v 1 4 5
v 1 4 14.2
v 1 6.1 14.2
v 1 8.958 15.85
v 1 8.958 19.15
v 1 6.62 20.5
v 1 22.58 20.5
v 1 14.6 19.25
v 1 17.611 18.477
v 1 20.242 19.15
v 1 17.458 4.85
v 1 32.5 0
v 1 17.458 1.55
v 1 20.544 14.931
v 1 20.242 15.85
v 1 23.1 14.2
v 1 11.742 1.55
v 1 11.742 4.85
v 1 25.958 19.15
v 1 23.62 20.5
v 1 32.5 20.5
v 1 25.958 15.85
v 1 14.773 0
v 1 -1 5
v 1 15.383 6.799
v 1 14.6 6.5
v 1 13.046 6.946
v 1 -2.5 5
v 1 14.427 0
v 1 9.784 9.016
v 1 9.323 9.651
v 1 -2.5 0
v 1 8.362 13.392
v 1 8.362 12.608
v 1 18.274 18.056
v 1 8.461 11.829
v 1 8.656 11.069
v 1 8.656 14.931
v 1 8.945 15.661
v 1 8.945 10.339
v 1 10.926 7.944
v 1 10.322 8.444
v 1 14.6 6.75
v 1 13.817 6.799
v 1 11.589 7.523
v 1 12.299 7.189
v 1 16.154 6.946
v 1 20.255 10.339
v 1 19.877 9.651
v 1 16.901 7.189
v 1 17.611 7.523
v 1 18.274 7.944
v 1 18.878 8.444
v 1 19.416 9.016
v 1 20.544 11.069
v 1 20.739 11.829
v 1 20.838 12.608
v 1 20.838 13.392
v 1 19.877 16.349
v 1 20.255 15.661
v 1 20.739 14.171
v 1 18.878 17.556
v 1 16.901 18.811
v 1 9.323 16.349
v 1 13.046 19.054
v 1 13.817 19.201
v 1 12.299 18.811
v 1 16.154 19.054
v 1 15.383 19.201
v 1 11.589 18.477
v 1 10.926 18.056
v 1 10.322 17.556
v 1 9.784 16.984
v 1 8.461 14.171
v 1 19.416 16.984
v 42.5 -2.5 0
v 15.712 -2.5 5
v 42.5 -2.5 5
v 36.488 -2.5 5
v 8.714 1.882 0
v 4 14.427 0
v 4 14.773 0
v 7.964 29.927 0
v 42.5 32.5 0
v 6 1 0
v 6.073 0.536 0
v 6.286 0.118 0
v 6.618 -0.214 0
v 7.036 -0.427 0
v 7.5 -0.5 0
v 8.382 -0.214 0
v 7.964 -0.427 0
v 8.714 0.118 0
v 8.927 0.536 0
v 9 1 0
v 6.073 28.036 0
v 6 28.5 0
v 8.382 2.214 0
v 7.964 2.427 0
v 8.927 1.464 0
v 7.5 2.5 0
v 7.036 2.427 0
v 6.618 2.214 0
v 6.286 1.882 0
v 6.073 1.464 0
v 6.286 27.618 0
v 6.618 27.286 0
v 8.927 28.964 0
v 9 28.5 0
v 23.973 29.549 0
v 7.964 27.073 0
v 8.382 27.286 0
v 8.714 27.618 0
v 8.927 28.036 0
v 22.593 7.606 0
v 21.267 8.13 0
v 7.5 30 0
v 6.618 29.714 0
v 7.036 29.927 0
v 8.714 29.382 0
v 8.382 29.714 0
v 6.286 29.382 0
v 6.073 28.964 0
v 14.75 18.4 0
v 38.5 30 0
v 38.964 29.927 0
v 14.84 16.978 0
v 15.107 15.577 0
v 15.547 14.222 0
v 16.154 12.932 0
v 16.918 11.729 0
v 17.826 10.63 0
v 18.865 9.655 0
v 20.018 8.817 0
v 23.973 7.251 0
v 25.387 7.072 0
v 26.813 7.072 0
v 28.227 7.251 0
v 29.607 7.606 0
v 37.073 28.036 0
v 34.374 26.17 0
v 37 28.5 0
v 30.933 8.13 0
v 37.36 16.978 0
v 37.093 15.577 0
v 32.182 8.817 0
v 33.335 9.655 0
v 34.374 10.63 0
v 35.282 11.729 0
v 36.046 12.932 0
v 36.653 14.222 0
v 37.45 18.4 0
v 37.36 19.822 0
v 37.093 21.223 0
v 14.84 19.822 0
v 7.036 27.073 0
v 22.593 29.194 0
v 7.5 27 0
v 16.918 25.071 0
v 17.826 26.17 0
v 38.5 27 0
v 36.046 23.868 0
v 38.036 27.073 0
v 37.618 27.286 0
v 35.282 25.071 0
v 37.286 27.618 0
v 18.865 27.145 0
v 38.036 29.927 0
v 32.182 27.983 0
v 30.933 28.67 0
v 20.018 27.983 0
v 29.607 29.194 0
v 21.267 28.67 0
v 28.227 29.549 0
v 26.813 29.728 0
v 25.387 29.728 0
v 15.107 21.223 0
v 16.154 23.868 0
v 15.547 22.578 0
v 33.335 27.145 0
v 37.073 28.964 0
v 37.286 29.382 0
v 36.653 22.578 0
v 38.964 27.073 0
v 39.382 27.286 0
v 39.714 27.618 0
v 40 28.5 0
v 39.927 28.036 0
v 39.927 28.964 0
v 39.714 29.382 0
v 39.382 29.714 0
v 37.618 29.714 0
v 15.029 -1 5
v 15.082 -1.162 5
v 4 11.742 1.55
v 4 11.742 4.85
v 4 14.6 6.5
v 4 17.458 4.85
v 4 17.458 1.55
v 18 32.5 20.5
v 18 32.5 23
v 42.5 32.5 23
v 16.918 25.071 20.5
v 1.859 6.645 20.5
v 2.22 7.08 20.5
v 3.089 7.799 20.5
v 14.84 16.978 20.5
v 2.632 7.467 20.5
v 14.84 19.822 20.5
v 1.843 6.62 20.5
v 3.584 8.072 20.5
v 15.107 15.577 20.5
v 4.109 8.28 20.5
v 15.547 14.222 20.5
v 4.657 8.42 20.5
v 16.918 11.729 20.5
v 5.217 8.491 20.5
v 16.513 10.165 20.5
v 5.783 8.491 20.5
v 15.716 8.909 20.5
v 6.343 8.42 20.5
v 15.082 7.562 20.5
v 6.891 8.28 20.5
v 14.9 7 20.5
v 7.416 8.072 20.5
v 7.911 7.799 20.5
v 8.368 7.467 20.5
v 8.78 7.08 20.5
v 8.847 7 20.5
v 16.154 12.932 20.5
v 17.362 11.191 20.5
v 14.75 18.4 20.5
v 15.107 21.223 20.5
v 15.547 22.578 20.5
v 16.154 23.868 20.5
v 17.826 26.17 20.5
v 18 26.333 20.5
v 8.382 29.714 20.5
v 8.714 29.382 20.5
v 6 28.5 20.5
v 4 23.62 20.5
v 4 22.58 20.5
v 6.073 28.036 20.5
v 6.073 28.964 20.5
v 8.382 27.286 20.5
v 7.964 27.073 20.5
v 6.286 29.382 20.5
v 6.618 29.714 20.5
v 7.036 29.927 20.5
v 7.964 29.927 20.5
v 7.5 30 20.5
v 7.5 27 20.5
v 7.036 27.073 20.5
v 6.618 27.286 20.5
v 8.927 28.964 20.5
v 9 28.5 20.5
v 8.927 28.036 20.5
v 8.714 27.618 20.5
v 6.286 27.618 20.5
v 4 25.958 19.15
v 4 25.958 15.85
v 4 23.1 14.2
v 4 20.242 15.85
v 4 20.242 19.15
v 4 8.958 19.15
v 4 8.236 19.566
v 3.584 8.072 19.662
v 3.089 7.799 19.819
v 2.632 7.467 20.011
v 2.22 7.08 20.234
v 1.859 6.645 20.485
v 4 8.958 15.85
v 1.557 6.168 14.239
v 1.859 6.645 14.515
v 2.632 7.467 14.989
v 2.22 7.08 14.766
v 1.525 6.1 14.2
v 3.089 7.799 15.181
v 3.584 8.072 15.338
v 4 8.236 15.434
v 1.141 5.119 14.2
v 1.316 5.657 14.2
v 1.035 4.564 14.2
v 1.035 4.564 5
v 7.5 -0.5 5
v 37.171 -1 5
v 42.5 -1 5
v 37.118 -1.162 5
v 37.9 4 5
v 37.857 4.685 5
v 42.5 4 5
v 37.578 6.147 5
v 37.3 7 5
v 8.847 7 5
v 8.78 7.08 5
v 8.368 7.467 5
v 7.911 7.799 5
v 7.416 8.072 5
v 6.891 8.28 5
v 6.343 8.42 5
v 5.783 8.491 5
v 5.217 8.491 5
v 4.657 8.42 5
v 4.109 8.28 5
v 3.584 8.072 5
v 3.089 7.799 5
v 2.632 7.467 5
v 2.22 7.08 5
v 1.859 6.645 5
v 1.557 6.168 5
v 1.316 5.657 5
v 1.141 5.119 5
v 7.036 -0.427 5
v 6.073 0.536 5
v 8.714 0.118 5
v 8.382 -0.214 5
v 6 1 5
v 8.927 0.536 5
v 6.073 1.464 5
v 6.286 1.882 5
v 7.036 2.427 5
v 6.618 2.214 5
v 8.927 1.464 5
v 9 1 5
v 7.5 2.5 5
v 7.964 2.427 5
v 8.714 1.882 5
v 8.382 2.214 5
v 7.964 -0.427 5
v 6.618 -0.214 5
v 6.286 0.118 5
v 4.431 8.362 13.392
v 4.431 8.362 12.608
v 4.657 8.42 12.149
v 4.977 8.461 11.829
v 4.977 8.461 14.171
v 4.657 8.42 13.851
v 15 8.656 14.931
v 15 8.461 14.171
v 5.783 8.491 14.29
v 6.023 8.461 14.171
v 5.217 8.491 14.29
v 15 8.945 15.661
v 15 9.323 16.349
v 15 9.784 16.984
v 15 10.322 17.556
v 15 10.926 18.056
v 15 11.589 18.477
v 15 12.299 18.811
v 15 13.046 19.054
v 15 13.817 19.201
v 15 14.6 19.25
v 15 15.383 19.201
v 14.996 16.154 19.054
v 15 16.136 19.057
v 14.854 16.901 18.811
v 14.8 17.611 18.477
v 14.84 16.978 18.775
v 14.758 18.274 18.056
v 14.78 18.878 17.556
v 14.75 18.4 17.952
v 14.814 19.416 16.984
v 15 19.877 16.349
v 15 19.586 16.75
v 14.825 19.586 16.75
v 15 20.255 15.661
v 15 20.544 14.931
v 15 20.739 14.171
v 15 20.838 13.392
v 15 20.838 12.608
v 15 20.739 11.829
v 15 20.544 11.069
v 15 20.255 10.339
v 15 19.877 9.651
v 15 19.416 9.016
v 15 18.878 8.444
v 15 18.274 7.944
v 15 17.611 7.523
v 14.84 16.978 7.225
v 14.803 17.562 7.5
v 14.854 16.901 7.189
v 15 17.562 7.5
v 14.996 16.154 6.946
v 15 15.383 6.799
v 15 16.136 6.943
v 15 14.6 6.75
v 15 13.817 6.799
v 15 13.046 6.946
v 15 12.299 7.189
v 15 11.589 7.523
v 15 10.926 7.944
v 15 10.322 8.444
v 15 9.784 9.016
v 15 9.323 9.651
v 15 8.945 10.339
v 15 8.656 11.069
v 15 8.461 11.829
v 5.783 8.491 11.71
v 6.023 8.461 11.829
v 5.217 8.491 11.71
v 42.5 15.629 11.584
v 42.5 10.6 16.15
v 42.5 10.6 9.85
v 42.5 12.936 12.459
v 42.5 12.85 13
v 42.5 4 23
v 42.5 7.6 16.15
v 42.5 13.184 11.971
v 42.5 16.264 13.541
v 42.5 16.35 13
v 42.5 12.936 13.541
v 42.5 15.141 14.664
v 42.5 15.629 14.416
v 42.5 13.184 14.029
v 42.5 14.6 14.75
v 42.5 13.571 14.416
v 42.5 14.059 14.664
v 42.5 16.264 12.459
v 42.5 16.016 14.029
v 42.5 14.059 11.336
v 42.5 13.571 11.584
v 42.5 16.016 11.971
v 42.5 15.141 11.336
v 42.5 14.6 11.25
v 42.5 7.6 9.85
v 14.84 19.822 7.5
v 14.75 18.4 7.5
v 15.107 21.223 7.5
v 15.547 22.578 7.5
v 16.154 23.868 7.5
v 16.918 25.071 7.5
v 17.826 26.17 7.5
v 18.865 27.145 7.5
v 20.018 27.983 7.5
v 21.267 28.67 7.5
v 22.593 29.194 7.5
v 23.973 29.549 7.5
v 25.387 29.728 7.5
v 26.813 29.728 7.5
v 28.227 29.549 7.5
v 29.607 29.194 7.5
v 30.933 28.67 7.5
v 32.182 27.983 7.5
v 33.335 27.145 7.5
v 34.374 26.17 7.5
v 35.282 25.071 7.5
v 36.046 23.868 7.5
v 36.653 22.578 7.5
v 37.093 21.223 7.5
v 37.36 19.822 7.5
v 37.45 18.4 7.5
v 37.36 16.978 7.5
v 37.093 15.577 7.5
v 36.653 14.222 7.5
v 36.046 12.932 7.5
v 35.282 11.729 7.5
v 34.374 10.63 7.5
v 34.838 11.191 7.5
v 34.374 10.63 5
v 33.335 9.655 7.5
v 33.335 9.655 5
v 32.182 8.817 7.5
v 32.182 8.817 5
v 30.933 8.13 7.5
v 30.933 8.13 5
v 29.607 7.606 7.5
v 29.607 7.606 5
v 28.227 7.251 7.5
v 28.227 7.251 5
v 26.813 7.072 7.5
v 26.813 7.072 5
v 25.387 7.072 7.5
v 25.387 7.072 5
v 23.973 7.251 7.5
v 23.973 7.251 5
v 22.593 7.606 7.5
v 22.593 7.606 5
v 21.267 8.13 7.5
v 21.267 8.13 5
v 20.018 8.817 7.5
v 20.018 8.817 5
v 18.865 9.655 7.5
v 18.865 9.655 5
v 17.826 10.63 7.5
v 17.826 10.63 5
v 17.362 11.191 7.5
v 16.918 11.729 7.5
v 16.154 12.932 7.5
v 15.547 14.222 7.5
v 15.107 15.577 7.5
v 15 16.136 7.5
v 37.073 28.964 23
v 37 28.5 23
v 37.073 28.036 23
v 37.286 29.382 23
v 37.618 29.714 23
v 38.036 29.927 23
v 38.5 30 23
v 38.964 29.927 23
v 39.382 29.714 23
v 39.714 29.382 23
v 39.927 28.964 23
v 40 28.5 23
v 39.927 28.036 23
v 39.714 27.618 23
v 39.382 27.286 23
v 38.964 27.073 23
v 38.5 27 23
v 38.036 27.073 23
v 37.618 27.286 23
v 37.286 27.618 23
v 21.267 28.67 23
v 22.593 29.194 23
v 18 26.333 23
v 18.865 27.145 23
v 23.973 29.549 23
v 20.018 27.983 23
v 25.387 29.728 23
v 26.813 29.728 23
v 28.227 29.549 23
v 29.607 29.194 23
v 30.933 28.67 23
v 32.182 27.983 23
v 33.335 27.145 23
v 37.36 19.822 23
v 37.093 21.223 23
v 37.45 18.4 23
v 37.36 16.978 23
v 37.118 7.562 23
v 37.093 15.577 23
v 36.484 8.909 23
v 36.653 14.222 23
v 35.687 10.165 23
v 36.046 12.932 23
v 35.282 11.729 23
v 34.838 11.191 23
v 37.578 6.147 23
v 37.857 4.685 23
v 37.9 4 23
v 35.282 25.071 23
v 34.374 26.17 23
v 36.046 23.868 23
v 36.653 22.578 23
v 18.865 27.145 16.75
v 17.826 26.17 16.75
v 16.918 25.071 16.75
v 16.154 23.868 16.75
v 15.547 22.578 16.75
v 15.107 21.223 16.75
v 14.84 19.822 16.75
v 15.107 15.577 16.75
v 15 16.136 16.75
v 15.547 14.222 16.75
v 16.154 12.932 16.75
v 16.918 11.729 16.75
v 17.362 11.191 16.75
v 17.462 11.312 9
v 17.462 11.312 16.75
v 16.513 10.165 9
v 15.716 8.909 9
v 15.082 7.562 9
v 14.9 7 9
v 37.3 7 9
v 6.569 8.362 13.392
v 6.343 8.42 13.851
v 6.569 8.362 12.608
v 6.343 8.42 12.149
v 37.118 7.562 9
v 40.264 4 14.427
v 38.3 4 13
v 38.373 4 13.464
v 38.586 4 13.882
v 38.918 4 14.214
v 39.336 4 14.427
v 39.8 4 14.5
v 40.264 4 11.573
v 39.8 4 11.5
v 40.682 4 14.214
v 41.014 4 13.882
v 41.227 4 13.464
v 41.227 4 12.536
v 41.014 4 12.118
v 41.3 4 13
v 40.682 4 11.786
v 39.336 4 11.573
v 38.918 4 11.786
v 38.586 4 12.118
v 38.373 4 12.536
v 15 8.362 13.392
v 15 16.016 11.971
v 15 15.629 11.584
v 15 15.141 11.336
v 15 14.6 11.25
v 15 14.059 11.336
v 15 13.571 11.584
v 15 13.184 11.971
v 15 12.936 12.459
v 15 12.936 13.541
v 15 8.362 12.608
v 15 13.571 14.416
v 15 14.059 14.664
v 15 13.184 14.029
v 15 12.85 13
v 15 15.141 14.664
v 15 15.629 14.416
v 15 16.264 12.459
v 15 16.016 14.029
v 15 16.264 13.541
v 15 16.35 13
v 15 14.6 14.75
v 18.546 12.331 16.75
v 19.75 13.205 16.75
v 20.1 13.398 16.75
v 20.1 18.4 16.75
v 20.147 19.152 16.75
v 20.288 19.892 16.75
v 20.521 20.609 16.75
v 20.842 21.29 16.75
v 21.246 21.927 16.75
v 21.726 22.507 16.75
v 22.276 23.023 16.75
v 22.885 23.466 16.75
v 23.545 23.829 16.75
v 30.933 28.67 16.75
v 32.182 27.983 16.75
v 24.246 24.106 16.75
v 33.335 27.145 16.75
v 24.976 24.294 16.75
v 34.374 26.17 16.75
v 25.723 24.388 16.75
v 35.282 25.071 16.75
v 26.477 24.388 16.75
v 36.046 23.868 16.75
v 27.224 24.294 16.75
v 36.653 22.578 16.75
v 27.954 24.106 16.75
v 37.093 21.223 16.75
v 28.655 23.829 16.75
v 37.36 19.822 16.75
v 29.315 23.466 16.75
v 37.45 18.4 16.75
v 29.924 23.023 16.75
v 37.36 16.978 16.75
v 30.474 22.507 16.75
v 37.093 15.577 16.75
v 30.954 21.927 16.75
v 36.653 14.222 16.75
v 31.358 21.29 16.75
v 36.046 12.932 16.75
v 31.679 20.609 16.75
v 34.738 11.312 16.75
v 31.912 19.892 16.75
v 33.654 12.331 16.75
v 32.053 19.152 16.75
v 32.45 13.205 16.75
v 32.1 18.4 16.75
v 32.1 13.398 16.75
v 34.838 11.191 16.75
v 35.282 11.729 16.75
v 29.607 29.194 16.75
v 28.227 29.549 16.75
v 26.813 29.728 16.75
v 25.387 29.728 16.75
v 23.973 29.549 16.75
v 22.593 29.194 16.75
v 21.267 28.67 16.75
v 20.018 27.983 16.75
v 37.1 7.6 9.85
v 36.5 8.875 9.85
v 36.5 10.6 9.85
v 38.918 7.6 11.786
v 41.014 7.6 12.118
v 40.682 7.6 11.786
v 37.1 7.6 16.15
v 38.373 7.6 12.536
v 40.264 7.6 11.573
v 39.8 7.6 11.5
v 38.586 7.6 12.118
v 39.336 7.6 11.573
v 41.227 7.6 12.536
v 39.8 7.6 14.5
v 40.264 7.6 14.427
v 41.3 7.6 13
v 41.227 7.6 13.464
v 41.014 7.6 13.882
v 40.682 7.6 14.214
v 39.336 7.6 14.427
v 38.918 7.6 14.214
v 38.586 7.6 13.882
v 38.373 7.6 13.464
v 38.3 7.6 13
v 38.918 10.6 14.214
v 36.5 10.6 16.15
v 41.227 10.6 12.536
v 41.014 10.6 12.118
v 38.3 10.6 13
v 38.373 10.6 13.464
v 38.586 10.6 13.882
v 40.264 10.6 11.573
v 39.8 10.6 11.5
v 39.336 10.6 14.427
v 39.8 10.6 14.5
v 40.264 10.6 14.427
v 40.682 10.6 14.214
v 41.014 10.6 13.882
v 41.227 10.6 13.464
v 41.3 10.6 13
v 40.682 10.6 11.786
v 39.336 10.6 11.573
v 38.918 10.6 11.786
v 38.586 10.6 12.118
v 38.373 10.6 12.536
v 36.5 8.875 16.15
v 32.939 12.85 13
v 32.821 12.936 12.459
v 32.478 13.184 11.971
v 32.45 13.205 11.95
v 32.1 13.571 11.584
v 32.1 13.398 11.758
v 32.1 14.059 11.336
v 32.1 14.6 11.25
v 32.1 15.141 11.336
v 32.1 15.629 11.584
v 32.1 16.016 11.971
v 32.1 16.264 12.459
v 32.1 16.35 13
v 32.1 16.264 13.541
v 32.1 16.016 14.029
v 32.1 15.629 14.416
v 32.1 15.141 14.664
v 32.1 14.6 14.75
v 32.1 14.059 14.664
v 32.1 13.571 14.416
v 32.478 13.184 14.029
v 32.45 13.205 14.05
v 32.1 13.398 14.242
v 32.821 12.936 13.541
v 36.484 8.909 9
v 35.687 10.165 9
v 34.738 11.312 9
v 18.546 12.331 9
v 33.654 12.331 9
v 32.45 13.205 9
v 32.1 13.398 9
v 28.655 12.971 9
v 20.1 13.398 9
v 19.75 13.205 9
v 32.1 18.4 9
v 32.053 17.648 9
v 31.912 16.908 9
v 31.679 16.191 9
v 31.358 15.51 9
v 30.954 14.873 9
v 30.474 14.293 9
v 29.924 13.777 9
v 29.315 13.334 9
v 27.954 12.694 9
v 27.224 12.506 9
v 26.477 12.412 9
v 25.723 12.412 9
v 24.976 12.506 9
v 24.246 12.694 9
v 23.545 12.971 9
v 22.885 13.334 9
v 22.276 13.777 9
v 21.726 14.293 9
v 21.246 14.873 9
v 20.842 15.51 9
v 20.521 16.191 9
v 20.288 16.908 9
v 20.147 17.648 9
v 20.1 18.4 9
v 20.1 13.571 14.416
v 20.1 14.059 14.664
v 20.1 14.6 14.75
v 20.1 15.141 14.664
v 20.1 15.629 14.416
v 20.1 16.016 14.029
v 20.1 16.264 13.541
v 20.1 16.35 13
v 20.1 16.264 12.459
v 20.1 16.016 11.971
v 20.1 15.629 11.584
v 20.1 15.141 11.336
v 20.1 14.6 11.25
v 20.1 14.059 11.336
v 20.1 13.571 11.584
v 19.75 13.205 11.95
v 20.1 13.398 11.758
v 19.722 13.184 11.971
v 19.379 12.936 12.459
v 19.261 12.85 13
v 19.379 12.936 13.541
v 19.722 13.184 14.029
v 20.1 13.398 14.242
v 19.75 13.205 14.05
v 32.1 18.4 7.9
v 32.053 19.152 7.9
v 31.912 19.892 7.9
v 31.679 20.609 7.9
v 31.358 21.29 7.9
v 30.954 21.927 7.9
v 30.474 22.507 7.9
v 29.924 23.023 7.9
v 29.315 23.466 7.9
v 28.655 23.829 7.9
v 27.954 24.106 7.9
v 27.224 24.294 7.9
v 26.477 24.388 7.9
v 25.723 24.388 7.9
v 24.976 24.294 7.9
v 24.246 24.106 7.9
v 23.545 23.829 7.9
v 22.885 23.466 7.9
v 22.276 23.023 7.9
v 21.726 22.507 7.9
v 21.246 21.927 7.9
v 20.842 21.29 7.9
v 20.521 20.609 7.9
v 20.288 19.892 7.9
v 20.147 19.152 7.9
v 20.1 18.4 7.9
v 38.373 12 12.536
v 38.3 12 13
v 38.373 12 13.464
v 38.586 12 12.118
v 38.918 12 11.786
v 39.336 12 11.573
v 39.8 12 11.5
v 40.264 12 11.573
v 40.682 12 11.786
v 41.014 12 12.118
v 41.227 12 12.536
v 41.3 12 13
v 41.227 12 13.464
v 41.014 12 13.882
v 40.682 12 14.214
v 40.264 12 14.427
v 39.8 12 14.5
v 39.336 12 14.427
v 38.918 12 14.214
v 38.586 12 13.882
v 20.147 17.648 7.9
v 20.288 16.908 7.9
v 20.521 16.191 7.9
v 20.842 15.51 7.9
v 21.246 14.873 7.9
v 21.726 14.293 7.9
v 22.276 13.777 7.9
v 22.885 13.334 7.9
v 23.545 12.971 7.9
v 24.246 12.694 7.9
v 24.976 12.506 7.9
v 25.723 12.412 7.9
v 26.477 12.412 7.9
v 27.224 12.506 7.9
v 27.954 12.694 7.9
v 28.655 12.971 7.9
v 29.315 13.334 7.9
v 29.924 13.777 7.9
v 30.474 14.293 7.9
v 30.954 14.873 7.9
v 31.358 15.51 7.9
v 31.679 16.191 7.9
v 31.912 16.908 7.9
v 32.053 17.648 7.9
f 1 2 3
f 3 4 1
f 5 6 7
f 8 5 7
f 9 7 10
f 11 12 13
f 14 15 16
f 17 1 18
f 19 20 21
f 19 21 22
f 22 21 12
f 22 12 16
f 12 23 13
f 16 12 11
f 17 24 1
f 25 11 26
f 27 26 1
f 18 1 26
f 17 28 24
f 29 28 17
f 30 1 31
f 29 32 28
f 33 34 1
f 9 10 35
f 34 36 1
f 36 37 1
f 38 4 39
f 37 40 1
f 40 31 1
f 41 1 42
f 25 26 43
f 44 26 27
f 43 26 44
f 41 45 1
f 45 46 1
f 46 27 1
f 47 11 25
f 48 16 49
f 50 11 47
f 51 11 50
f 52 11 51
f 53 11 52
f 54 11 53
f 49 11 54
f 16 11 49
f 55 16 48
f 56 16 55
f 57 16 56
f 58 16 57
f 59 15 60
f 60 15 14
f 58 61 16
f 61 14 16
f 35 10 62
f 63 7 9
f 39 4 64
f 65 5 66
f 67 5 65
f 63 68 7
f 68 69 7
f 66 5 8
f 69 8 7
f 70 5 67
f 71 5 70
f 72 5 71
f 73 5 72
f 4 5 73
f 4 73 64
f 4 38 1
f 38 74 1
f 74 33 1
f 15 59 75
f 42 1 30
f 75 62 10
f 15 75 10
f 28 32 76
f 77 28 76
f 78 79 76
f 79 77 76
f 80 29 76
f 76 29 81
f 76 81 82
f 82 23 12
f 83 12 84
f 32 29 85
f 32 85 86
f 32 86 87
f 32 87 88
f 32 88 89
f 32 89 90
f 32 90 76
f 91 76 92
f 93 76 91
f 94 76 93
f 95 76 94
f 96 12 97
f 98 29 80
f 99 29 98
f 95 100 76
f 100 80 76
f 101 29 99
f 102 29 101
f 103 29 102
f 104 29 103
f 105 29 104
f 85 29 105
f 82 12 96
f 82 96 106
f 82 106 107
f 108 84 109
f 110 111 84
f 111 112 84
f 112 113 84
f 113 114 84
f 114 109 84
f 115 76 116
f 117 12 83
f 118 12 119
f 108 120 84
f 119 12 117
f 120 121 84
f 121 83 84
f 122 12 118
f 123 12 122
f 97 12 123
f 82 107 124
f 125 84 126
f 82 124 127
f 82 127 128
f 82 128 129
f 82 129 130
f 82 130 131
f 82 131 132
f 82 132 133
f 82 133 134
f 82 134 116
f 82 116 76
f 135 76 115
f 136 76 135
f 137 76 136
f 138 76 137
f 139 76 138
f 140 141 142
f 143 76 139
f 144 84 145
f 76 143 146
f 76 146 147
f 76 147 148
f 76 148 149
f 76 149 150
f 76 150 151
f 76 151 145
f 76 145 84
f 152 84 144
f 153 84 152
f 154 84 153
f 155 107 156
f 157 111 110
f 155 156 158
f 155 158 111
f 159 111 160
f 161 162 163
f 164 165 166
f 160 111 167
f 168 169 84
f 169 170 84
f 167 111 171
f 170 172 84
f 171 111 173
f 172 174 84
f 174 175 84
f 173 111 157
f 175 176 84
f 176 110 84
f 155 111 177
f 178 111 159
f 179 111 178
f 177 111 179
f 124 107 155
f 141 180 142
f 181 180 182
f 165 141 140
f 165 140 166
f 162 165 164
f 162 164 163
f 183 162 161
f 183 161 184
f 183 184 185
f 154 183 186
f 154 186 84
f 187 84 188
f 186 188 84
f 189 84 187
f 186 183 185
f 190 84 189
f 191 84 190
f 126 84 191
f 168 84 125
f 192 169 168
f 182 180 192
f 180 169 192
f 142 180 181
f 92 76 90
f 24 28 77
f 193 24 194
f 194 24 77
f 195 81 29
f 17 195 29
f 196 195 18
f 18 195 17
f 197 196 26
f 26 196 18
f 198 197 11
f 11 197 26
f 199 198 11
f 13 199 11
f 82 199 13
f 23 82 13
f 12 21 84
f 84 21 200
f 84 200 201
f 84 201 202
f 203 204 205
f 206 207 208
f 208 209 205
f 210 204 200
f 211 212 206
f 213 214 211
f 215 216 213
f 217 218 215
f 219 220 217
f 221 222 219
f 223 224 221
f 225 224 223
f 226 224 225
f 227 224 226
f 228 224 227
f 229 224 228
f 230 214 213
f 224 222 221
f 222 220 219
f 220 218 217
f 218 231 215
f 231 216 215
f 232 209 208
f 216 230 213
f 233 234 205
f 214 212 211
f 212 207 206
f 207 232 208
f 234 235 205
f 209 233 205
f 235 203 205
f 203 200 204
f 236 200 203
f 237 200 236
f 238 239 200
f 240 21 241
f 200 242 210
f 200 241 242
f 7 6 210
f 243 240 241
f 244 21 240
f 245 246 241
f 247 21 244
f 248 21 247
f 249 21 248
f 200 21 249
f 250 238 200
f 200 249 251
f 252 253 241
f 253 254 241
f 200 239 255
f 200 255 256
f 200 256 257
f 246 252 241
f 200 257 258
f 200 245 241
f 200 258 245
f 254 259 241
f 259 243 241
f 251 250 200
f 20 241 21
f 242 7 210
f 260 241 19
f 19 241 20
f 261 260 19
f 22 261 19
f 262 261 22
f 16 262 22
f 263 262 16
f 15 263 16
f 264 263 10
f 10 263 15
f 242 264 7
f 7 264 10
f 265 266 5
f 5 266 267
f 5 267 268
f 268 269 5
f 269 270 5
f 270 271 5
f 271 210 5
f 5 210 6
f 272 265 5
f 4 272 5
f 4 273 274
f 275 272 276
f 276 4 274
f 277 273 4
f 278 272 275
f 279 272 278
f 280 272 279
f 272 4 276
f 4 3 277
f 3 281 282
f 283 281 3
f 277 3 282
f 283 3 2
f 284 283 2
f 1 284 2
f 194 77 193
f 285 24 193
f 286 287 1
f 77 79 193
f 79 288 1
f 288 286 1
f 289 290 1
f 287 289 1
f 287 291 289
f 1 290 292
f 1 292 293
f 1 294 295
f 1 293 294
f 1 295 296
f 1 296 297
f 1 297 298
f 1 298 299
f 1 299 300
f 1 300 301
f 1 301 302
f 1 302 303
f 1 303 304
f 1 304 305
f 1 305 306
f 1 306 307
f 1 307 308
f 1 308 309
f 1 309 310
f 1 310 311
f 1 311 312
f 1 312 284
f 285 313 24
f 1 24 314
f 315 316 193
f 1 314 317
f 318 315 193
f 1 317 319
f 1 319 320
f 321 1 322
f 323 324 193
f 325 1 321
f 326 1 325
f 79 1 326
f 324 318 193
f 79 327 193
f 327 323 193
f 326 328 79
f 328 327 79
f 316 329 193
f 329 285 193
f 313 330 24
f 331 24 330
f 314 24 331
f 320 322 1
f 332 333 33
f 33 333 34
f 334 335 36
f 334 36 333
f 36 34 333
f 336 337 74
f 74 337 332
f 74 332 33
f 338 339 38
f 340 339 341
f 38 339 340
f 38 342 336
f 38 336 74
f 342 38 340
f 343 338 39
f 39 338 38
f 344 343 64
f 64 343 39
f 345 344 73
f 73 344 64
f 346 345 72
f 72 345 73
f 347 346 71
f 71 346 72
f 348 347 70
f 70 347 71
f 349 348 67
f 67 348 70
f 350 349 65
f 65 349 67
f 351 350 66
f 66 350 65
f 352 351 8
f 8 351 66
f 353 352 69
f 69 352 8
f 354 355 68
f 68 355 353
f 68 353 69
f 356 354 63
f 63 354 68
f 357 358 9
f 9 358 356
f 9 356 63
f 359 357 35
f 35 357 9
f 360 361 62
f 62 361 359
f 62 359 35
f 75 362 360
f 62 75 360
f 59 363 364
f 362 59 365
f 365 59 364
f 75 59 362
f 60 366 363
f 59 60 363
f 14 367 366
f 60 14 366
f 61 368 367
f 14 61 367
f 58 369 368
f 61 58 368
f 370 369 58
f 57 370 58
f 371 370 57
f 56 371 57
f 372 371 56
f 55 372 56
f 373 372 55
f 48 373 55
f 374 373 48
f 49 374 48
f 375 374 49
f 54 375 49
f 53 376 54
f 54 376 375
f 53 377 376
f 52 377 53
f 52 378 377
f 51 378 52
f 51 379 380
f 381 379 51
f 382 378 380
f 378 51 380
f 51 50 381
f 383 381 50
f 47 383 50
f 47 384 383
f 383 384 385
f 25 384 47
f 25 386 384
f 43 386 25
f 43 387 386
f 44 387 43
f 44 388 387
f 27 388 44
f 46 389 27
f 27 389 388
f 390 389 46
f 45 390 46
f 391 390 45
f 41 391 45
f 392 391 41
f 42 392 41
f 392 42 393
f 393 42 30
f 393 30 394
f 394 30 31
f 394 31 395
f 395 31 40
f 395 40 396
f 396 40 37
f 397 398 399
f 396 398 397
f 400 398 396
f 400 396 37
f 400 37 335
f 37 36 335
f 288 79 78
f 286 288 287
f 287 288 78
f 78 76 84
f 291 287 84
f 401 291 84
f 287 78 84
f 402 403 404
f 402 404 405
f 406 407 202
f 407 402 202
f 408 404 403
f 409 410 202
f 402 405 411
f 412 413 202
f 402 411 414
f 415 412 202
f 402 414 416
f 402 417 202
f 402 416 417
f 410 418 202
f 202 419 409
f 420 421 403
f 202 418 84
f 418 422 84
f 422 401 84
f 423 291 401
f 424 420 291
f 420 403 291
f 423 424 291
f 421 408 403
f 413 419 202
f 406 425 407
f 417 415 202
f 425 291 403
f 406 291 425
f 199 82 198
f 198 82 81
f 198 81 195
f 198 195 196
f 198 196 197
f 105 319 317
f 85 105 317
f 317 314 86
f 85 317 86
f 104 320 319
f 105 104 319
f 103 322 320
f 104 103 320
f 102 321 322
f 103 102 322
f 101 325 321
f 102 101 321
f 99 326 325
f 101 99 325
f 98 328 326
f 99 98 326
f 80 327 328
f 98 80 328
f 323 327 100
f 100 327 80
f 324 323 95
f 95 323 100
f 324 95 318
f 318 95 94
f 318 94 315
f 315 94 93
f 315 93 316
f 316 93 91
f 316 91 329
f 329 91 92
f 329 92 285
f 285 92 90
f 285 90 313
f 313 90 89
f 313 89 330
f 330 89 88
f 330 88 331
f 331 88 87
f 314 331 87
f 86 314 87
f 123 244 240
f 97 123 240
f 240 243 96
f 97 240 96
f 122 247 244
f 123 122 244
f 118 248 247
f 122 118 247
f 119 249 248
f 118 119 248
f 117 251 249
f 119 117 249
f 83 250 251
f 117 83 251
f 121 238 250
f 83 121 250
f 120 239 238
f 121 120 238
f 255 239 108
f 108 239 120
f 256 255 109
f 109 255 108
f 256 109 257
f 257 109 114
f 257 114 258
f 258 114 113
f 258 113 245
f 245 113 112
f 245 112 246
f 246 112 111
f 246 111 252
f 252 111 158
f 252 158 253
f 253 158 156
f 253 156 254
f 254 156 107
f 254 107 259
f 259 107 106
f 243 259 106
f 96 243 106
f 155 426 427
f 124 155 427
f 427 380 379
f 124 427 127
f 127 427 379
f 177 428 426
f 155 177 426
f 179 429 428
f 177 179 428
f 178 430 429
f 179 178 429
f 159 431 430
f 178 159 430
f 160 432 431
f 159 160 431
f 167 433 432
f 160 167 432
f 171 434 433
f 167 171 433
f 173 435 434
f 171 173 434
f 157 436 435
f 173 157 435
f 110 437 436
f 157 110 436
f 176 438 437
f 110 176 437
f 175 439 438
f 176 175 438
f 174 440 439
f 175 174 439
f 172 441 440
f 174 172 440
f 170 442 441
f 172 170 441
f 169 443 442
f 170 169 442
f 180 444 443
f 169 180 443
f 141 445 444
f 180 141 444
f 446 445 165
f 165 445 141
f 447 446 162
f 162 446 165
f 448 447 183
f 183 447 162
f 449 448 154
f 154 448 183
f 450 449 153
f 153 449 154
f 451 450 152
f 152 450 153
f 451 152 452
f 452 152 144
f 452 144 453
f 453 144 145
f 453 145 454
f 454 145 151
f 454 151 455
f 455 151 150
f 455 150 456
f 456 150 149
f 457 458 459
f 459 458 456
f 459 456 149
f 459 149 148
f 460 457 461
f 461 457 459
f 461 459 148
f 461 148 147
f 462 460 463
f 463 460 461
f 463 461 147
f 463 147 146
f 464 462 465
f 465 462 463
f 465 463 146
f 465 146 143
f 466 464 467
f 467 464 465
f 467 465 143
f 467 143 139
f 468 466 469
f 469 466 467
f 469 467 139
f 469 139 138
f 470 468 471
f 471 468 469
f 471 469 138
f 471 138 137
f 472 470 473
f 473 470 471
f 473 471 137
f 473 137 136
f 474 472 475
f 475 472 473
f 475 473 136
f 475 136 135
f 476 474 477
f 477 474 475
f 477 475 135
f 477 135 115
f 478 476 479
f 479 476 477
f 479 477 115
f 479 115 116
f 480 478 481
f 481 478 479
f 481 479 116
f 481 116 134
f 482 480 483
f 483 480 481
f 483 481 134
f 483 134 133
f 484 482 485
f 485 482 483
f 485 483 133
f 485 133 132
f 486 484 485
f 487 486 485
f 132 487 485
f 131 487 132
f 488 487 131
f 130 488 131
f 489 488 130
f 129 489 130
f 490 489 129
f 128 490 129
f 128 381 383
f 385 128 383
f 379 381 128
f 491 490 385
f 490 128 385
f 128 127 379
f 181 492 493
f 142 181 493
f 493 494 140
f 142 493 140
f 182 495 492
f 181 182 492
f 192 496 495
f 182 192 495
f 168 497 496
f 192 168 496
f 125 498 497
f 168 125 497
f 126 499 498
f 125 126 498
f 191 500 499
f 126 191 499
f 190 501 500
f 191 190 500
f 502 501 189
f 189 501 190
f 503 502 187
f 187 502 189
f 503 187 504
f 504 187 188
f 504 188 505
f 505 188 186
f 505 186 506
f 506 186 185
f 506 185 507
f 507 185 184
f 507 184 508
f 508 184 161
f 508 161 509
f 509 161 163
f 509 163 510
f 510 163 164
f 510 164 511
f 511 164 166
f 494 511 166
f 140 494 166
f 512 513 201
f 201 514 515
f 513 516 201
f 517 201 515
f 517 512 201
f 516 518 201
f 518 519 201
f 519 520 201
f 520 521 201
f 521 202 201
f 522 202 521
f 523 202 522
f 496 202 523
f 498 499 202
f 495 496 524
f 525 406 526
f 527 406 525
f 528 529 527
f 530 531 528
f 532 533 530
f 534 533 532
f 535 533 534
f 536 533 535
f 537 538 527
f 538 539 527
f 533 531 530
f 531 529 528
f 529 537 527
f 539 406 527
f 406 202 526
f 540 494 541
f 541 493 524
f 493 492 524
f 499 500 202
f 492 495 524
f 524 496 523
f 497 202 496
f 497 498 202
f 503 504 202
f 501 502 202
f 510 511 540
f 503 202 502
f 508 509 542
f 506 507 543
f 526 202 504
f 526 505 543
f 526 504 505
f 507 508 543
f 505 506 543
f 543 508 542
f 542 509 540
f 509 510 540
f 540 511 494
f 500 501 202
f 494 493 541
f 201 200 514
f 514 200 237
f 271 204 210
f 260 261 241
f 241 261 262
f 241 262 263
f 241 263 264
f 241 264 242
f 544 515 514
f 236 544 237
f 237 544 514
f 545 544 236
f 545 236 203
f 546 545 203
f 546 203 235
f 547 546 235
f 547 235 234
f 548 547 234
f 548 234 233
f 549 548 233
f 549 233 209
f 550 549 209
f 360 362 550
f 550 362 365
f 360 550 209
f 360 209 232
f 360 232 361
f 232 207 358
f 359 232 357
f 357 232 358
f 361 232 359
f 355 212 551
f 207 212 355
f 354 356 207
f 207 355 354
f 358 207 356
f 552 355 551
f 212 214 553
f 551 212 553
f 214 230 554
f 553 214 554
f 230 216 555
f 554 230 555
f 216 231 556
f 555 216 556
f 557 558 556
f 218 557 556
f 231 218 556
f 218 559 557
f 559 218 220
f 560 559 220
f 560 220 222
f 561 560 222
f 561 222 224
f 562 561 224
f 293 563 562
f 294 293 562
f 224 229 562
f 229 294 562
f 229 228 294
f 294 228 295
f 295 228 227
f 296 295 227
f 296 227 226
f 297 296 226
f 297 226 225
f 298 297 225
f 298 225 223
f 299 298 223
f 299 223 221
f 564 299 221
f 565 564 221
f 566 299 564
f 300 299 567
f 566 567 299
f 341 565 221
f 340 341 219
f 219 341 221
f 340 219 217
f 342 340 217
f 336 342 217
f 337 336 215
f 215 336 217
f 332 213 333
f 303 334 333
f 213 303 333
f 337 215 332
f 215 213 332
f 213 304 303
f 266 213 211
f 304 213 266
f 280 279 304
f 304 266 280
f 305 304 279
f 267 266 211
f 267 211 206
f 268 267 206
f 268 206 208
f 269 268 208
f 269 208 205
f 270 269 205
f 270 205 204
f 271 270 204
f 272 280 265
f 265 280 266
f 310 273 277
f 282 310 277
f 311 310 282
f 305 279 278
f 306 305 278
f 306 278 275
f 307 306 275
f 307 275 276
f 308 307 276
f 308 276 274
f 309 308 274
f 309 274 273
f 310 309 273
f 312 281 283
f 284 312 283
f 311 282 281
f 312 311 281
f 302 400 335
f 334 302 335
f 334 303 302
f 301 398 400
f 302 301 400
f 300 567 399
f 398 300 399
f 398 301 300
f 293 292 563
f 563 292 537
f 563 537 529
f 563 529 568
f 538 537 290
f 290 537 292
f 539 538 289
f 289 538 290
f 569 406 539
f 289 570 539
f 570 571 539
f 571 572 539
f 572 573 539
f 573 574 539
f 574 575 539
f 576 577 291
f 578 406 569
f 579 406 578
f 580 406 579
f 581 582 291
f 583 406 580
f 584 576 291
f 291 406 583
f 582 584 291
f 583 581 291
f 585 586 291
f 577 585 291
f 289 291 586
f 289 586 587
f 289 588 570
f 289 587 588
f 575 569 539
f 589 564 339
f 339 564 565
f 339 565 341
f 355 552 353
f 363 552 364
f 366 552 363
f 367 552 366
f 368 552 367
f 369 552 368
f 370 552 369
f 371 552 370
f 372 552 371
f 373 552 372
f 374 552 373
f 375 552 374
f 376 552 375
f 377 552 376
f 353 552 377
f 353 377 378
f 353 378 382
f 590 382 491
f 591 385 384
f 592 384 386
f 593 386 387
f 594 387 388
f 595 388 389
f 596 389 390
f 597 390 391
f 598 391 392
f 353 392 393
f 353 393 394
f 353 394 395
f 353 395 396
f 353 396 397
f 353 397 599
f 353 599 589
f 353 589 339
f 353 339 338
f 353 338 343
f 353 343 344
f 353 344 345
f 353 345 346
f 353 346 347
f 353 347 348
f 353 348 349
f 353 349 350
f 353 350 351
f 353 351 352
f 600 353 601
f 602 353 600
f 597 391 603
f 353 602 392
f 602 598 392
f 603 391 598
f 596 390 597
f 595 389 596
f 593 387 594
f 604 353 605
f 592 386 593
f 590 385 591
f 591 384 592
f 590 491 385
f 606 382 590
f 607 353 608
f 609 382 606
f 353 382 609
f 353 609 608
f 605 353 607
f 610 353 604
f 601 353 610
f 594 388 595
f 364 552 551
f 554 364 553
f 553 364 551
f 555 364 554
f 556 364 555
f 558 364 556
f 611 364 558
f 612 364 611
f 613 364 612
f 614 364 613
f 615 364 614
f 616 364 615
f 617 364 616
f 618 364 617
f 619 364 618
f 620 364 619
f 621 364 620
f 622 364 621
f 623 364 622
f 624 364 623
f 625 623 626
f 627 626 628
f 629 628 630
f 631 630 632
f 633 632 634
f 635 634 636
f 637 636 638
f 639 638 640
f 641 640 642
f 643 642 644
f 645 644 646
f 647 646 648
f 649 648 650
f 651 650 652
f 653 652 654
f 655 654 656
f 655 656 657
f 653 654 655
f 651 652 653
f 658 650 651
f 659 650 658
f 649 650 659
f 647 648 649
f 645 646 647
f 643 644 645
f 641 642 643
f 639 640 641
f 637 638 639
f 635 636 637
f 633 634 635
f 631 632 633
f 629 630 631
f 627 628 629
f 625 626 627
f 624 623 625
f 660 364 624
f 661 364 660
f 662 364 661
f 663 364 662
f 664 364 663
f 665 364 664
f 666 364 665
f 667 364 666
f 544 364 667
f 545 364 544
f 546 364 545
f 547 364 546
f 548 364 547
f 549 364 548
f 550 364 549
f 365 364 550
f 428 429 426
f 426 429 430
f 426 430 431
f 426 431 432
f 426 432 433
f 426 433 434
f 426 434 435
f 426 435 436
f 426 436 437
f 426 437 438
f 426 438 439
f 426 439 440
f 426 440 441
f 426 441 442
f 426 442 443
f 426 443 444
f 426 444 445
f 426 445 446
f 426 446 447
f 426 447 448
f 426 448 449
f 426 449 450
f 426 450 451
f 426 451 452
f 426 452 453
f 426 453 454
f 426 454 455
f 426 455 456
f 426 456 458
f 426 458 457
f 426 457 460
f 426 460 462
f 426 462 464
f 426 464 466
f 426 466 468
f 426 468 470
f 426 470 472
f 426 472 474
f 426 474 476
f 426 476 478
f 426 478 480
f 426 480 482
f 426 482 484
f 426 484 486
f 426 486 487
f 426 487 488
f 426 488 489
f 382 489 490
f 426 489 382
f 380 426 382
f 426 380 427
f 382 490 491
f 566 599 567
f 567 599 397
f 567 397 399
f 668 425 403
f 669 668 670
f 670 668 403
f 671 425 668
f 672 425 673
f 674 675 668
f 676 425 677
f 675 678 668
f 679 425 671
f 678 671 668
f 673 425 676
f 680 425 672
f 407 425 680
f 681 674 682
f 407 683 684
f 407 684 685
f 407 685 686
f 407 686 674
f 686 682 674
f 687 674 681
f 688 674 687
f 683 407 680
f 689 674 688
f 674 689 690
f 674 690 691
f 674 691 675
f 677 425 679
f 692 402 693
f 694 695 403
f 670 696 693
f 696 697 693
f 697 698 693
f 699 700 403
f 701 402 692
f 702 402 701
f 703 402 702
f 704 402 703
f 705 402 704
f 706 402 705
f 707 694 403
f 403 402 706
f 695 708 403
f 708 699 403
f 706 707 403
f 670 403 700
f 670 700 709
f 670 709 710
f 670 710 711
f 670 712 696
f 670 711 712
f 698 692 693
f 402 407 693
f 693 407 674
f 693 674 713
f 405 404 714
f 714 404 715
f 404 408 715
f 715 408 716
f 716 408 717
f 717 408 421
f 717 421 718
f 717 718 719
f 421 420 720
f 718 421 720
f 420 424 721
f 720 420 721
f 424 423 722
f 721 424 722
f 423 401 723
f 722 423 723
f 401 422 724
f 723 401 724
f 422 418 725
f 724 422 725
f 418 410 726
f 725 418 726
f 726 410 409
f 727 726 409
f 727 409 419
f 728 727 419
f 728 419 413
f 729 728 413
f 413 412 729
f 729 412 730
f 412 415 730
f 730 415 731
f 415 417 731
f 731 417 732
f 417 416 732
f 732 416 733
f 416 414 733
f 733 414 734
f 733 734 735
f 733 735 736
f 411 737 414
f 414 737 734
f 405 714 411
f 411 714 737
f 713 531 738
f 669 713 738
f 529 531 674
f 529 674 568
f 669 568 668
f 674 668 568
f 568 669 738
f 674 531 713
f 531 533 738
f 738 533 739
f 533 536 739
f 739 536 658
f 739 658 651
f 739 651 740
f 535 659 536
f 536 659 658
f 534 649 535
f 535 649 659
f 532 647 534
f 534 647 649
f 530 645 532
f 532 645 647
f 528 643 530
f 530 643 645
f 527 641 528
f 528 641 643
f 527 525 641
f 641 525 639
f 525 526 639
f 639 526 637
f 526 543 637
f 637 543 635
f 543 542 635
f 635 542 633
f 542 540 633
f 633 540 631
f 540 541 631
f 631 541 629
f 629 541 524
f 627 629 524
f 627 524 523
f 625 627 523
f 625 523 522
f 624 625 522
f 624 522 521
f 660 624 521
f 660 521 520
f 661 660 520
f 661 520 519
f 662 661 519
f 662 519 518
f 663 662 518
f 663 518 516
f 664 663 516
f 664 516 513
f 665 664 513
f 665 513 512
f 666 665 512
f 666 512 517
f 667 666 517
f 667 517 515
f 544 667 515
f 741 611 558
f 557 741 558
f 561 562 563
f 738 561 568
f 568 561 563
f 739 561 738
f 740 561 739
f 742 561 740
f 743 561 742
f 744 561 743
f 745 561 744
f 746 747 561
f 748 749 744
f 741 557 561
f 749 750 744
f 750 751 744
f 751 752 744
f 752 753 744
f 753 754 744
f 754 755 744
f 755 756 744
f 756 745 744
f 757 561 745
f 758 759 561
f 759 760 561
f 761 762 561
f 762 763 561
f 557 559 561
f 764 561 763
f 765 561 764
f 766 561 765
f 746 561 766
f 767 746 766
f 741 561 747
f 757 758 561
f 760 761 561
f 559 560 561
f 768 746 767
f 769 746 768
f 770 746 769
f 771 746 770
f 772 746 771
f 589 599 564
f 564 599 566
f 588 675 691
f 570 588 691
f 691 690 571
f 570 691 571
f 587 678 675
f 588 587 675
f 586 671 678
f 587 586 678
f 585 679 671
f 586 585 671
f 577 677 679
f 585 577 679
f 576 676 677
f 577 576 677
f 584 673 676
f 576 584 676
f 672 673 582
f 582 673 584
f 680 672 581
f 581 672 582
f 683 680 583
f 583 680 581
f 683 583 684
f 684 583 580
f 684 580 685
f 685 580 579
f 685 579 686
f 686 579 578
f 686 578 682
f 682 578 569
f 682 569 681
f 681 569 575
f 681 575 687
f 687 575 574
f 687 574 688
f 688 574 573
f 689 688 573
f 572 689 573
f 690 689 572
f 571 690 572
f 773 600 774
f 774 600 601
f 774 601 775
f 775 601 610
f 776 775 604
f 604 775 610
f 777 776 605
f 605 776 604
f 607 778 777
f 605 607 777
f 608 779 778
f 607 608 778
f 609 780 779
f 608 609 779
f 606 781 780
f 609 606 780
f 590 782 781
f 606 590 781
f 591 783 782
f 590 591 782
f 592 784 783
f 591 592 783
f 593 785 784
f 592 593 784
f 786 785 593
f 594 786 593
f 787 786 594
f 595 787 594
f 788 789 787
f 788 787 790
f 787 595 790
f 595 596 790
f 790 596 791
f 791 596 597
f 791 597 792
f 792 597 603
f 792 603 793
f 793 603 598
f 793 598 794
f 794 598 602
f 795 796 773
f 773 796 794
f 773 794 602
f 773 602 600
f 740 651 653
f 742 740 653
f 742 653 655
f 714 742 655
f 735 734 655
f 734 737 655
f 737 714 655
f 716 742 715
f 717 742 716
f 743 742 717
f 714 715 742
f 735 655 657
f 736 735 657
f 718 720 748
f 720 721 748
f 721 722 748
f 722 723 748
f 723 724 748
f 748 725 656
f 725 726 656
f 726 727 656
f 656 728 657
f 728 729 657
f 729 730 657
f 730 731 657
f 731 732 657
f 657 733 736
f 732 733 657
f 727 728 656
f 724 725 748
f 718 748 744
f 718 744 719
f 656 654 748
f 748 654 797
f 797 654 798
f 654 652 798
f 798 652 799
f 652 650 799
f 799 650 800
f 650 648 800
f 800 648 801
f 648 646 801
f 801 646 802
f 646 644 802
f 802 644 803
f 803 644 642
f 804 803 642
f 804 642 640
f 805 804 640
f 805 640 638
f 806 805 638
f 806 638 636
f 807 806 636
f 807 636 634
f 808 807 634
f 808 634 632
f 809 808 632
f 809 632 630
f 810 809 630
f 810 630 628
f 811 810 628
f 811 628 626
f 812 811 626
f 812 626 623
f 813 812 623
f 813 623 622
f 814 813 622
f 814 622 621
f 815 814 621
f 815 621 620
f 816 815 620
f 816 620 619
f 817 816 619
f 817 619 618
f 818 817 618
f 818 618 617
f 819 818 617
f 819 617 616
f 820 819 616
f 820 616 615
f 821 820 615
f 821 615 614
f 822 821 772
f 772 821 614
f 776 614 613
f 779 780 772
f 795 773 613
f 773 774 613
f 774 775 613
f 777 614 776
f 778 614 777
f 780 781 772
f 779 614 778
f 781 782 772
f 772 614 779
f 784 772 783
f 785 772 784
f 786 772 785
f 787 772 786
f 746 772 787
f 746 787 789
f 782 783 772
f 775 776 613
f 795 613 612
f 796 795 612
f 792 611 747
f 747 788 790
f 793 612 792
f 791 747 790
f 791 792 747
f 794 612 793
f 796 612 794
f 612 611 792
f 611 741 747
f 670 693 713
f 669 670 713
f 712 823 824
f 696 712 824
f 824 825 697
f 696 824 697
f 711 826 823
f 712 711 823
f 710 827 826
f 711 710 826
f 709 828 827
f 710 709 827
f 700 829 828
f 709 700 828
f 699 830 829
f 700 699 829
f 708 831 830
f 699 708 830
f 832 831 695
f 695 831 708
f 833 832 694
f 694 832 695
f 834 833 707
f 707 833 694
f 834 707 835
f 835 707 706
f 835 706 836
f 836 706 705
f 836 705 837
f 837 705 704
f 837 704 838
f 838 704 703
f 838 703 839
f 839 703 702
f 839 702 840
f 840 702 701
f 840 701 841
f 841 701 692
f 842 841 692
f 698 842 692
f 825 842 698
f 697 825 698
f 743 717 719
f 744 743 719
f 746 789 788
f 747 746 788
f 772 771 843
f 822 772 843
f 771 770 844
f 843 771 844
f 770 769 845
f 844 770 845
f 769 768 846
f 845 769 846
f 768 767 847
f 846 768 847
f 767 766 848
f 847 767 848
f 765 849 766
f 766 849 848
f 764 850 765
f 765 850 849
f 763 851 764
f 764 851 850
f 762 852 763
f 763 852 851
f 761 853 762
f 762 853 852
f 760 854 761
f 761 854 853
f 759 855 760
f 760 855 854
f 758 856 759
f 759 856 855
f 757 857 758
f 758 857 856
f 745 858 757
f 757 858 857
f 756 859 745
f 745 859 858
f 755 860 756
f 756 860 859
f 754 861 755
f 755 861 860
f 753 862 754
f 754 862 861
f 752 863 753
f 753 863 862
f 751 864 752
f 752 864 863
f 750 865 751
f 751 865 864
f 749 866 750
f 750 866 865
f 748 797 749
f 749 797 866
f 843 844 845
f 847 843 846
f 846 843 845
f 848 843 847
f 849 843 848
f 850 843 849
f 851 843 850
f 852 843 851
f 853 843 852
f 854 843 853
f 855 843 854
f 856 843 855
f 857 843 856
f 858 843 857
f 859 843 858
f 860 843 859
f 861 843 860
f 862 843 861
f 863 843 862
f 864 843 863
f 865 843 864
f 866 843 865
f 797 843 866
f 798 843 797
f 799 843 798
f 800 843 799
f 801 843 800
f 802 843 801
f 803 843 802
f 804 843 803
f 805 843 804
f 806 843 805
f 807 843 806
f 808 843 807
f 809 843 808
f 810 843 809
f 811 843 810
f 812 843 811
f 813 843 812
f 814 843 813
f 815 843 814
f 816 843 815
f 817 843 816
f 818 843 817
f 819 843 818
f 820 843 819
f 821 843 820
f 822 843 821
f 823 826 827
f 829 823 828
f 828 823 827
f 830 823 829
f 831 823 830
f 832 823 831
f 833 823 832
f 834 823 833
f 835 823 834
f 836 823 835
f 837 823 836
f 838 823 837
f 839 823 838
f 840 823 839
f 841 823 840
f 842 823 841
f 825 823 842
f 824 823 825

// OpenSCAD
x=42.5;
y=34.5;
z=23;

d1=3;
d2=22.2+.5;
d3=12;
d4=9;
d5=3.5;
//d6=15.5+.5;
d6=12.5;

x0=5.5;
y0=4;
x1=26.1;
y1=18.4;
z1=z-6.25;

y2=14.6;
z2=13;
y22=14.6;
z22=13;
y3=3;
z3=6.3;

y4=4;
y5=9;
z4=2.5;
union() {
difference() {
union(){
	cube([x,y-2,z]);
	translate([0,-2.5,0])cube([x,2.5,5]);
}
	translate([-1,-2.5,-1])cube([2,y+3,z]);
	// отверстия по углам
	translate([x0+2,y0-1-2,-1])cylinder(z+2,r=d1/2,$fn=20);
	translate([x0+2,y-y0-2,-1])cylinder(z+2,r=d1/2,$fn=20);
	translate([x-x0-0.5+2,y-y0-2,-1])cylinder(z+2,r=d1/2,$fn=20);

	// центр
	%translate([x1,y1,-1])cylinder(z+2,r=5.8/2,$fn=50);
	translate([x1,y1,-1])cylinder(z+2,r=d3/2,$fn=50);
	translate([x1,y1,z1])cylinder(7,r=d2/2,$fn=50);
	translate([x1-d3/2,y1-8,z1-7.8])cube([d3,8,9]);

	// передняя часть
	translate([-1,-1,5])cube([x+2,y4+1,z-4]);
	translate([x0,-1,5])cube([x/2-x0,8,z-4]);
	translate([x0,4,5])cylinder(z-4,r=d4/2,$fn=50);
	translate([26.1,3.2,5])cylinder(z-4,r=d2/2+0.5,$fn=50);

	// верх
	translate([-1,-1,z-z4])cube([19,y+2,z4+1]);

	translate([x1,y1,-1])cylinder(8.5,r=d2/2,$fn=50);
	translate([x1,y2,z2])rotate([0,90,0])cylinder(x-x1+1,r=d5/2,$fn=20);
	%translate([-1,y2,z2])rotate([0,90,0])cylinder(x+2,r=3/2,$fn=20);

	translate([x-6,y2-7,z2-z3/2])cube([7,y3,z3]);
	translate([x-2.7,y4-1,z2])rotate([-90,0,0])cylinder(y5,r=d1/2,$fn=20);

	// сопло
	translate([-1,y22,z22])rotate([0,90,0])cylinder(x1+1,r=d5/2,$fn=20);
	translate([-1,y22,z22])rotate([0,90,0])cylinder(16,r=d6/2,$fn=50);
	//translate([-1,y22+8.5,z-z4-3])rotate([0,90,0])cylinder(5,r=d1/2,$fn=20);
	translate([-1,y22+8.5,z-z4-3])rotate([0,90,0])cylinder(5,r=6.6/2,$fa=60);
	//translate([-1,y22,3.2])rotate([0,90,0])cylinder(5,r=d1/2,$fn=20);
	translate([-1,y22,3.2])rotate([0,90,0])cylinder(5,r=6.6/2,$fa=60);
	//translate([-1,y22-8.5,z-z4-3])rotate([0,90,0])cylinder(5,r=d1/2,$fn=20);
	translate([-1,y22-8.5,z-z4-3])rotate([0,90,0])cylinder(5,r=6.6/2,$fa=60);
	translate([-1,y22-8.5-3,z-z4-3.3+4])rotate([0,90,0])cube([7,3,3]);

}

difference() {
	union() {
		translate([x1,y1,0.5])cylinder(8.5,r=d2/2+1,$fn=50);
		translate([14,7,0.5])cube([24,5,8.5]);
	}
	translate([x1,y1,7.9])cylinder(15,r=d3/2,$fn=50);
	translate([x1,y1,-1])cylinder(8.5,r=d2/2,$fn=50);
	translate([0.5,y1-d2/4,0.5])cube([14.5,d2/2,10]);
	translate([14,2,0.5])cube([24,5,9]);
	translate([-1,y22,z22])rotate([0,90,0])cylinder(16,r=d6/2,$fn=50);
}
}
